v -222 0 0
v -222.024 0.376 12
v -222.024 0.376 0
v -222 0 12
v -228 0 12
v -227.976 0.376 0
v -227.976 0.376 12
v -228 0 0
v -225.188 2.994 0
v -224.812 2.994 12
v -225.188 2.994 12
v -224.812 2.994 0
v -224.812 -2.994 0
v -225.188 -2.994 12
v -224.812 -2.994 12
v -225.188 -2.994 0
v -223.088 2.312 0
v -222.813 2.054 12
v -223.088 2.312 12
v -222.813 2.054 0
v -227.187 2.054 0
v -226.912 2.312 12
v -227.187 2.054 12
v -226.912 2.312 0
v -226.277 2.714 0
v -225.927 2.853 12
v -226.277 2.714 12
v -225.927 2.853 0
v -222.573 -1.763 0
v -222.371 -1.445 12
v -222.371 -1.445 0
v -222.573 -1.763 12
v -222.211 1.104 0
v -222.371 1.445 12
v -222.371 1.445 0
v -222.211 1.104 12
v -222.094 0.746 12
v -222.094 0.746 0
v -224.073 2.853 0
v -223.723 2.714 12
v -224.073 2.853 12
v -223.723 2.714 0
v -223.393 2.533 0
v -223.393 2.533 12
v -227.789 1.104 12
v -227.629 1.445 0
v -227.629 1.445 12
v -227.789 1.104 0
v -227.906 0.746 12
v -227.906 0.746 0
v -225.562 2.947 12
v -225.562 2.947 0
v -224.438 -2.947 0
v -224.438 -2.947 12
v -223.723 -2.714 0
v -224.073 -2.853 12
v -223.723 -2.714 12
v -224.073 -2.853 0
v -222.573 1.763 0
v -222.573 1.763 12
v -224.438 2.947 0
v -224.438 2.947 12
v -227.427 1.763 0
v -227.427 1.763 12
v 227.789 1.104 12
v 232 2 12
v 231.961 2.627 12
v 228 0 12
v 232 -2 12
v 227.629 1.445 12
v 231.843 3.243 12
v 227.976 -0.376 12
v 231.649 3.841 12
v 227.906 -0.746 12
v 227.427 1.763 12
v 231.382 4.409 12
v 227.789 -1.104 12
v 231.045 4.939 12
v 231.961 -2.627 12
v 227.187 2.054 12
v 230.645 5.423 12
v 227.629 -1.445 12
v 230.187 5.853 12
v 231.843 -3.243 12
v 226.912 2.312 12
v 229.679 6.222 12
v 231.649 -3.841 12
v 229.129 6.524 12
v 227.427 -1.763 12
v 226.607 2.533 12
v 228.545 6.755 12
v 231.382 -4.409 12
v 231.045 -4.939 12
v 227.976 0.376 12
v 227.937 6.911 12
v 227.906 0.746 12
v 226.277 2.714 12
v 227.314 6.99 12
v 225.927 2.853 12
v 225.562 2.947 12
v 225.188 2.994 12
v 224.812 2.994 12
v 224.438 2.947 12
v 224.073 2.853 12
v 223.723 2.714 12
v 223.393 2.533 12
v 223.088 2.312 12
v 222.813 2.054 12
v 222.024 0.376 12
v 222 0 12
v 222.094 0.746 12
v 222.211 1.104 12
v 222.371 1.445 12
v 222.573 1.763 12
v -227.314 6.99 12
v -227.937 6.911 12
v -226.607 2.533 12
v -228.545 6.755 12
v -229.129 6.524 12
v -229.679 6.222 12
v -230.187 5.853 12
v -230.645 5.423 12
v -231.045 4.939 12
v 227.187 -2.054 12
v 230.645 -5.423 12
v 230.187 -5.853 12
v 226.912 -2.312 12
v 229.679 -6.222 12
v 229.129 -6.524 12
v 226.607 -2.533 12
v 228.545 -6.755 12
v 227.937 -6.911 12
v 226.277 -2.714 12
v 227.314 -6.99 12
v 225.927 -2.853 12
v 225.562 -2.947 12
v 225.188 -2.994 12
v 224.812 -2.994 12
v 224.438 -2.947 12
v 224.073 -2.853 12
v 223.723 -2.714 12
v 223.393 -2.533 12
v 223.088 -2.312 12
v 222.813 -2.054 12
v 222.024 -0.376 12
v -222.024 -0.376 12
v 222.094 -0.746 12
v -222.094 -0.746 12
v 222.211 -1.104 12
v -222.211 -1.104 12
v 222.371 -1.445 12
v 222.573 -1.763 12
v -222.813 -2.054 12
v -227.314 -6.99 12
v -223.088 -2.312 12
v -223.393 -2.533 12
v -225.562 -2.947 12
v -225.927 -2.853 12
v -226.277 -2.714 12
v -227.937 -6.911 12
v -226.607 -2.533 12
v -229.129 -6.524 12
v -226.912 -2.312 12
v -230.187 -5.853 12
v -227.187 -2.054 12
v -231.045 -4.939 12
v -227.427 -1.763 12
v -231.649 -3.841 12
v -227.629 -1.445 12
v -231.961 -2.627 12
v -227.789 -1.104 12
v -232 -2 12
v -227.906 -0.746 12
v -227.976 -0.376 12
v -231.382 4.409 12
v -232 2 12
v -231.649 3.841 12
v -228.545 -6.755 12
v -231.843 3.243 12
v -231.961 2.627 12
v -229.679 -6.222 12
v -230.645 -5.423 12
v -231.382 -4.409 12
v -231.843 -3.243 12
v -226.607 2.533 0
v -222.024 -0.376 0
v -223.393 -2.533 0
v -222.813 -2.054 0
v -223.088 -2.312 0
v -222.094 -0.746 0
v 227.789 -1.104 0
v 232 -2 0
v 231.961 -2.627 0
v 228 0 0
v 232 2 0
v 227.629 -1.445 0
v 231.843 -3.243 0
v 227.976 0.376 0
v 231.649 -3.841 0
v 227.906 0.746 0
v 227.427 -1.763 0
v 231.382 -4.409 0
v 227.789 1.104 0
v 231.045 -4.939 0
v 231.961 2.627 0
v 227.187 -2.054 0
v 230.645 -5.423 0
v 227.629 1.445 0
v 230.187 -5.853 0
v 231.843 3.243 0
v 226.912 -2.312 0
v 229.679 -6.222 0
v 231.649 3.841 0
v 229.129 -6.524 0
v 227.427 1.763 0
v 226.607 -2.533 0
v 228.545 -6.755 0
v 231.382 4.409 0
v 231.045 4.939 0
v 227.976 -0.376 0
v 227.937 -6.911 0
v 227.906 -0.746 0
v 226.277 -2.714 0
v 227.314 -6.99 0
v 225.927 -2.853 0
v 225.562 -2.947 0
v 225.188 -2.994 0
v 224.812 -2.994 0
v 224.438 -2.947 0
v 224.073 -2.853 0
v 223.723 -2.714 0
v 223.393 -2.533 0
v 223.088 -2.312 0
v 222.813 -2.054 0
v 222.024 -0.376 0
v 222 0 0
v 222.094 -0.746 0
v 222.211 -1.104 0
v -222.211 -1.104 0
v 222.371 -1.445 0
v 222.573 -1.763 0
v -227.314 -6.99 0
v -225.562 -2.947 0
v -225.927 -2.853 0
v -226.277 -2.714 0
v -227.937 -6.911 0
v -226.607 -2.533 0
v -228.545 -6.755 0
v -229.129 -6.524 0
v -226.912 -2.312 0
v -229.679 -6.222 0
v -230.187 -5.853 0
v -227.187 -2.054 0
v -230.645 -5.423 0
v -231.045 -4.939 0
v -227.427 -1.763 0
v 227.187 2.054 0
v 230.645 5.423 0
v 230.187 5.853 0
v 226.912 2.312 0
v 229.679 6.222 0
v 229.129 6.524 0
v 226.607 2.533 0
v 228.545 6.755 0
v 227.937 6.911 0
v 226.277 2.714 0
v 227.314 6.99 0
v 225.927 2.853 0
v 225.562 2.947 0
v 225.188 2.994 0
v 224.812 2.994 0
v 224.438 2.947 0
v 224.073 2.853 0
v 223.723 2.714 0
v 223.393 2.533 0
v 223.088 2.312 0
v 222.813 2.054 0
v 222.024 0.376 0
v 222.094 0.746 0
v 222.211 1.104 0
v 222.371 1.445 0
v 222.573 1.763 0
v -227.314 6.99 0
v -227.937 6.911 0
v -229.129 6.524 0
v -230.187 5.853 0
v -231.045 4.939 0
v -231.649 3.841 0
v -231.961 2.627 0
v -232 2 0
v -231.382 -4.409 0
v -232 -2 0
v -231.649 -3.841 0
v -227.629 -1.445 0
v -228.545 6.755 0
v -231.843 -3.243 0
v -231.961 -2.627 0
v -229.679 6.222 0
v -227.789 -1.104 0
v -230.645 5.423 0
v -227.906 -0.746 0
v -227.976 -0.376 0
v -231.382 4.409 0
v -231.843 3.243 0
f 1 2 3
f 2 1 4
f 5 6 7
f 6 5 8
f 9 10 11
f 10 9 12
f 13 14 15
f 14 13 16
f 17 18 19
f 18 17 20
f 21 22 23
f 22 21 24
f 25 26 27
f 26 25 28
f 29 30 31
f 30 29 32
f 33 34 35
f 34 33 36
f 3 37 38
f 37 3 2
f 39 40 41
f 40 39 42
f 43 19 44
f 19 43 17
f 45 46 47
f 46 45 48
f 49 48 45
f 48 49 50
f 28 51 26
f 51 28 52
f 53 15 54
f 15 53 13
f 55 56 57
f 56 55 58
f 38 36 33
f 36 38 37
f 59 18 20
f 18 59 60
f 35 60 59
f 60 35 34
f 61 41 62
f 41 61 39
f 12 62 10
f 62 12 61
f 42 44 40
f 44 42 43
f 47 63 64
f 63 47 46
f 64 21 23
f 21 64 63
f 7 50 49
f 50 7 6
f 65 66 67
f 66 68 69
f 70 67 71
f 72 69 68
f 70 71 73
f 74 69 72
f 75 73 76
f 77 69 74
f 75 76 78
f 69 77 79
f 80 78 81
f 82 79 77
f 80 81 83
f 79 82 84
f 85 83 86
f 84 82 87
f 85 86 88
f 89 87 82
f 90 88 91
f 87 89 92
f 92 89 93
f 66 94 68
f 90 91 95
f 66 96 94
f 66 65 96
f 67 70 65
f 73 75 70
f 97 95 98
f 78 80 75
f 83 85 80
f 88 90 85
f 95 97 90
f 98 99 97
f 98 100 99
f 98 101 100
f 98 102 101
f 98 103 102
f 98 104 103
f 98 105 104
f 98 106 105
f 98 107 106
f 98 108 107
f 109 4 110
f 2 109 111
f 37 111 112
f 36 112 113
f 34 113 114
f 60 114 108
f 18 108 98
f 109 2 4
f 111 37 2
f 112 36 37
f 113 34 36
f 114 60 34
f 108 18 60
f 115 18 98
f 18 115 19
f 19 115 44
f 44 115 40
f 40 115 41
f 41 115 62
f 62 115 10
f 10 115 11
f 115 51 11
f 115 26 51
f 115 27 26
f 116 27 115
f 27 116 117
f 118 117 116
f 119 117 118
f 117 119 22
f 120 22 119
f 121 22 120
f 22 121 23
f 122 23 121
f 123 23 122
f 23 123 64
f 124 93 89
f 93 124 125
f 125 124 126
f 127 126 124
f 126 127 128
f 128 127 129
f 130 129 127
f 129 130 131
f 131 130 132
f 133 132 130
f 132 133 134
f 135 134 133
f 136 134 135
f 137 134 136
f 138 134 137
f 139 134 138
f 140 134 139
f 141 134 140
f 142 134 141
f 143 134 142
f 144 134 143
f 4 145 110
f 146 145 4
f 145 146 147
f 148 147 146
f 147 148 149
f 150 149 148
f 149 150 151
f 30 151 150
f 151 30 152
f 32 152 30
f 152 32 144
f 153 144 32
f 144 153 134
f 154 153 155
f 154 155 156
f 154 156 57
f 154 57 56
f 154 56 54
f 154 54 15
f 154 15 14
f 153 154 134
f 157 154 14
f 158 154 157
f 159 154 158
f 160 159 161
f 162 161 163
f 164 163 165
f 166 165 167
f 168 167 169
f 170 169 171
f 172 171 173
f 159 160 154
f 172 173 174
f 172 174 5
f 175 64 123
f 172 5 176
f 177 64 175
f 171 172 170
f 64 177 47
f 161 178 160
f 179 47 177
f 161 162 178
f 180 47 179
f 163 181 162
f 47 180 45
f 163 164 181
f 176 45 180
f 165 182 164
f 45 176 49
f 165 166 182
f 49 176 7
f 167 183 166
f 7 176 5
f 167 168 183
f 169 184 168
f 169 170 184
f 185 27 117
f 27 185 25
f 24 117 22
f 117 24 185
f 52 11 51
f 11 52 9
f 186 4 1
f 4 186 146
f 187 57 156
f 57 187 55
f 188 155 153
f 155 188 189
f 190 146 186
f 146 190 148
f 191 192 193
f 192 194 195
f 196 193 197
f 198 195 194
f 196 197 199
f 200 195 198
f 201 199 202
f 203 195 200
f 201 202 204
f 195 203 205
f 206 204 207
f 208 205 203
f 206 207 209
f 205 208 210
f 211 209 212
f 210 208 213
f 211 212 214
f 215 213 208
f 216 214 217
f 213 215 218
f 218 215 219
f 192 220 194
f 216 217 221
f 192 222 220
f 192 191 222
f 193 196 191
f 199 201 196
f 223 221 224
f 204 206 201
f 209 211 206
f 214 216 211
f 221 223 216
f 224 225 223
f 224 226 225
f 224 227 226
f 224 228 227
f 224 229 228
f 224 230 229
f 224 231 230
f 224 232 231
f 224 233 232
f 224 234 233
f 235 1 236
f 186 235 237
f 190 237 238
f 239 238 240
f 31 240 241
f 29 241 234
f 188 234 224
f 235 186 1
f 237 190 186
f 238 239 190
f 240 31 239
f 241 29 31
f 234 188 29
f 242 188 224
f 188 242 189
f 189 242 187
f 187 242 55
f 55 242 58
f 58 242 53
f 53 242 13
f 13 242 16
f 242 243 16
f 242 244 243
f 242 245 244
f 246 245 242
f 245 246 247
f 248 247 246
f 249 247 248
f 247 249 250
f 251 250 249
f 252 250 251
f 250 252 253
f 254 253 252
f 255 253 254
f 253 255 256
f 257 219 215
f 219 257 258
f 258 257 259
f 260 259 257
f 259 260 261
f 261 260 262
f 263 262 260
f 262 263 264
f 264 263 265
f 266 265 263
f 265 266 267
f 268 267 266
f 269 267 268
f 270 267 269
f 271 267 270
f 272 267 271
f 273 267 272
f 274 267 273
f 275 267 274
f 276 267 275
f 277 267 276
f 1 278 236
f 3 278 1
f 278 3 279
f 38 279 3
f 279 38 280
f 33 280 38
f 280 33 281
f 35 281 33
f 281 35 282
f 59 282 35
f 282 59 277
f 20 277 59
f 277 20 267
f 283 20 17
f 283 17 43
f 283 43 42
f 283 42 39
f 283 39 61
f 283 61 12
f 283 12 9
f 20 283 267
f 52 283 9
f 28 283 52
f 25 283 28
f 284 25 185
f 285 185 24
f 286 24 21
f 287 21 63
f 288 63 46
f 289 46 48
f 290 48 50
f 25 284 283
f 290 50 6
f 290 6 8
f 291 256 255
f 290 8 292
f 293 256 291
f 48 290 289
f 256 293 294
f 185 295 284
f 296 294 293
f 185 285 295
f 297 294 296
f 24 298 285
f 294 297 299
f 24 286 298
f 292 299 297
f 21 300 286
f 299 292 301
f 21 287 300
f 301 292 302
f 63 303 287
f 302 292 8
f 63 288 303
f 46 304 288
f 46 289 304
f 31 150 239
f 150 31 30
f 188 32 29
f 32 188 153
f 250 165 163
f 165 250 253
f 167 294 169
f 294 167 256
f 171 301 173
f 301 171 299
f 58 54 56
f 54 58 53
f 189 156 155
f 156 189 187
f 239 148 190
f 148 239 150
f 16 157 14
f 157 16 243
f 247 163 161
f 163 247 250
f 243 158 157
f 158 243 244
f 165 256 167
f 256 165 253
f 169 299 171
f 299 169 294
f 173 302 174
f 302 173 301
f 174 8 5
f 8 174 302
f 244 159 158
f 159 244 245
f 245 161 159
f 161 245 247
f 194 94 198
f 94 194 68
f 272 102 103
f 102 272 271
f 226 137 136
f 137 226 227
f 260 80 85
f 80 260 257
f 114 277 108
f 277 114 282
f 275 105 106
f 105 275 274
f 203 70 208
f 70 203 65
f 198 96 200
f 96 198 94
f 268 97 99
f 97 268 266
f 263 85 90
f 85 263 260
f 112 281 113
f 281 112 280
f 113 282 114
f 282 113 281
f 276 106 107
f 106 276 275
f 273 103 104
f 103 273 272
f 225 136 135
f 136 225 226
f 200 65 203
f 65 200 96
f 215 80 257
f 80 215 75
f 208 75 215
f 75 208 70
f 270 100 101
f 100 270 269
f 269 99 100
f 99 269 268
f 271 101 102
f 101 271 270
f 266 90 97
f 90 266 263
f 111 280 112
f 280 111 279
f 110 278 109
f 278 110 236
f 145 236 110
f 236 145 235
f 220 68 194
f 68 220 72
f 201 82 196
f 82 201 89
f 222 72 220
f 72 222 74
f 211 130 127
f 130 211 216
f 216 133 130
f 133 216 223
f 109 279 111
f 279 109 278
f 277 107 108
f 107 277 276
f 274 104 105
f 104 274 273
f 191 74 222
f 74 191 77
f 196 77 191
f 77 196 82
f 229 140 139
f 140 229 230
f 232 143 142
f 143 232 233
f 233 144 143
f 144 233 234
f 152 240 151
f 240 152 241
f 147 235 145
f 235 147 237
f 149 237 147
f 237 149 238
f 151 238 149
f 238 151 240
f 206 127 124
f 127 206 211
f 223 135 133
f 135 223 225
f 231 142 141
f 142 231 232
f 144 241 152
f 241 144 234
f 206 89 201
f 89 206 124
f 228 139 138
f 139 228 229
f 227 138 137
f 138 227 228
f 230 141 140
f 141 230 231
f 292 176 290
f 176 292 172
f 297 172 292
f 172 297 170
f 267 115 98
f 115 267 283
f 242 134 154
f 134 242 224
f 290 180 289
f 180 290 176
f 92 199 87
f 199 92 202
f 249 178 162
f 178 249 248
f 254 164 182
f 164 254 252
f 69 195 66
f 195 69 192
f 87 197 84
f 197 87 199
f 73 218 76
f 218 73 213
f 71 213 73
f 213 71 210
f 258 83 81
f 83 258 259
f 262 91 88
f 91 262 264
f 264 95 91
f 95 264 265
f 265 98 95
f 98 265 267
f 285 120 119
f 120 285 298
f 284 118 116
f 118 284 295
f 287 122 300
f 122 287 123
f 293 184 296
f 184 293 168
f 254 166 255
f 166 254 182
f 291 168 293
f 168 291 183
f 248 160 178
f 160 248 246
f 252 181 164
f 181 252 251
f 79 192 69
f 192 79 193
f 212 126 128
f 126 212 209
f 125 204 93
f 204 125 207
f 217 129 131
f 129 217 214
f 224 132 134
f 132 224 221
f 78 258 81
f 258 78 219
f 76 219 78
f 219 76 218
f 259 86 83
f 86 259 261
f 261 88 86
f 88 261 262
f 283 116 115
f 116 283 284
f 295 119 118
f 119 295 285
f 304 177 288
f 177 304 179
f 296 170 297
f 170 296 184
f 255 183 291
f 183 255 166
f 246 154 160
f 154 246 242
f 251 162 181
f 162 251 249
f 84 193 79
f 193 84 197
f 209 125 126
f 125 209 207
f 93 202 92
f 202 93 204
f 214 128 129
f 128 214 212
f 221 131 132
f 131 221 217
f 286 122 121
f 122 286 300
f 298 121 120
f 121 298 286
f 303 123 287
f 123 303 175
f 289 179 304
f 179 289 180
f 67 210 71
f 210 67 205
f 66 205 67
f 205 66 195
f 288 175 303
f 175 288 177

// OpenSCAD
$fn = 50;


difference() {
	union() {
		hull() {
			translate(v = [-227.0000000000, 2.0000000000, 0]) {
				cylinder(h = 12, r = 5);
			}
			translate(v = [227.0000000000, 2.0000000000, 0]) {
				cylinder(h = 12, r = 5);
			}
			translate(v = [-227.0000000000, -2.0000000000, 0]) {
				cylinder(h = 12, r = 5);
			}
			translate(v = [227.0000000000, -2.0000000000, 0]) {
				cylinder(h = 12, r = 5);
			}
		}
	}
	union() {
		translate(v = [-225.0000000000, 0.0000000000, 0]) {
			cylinder(h = 12, r = 3.0000000000);
		}
		translate(v = [225.0000000000, 0.0000000000, 0]) {
			cylinder(h = 12, r = 3.0000000000);
		}
		translate(v = [-225.0000000000, 0.0000000000, 0]) {
			cylinder(h = 12, r = 1.5000000000);
		}
		translate(v = [225.0000000000, 0.0000000000, 0]) {
			cylinder(h = 12, r = 1.5000000000);
		}
		translate(v = [-225.0000000000, 0.0000000000, 0]) {
			cylinder(h = 12, r = 1.5000000000);
		}
		translate(v = [225.0000000000, 0.0000000000, 0]) {
			cylinder(h = 12, r = 1.5000000000);
		}
		translate(v = [-225.0000000000, 0.0000000000, 0]) {
			cylinder(h = 12, r = 1.5000000000);
		}
		translate(v = [225.0000000000, 0.0000000000, 0]) {
			cylinder(h = 12, r = 1.5000000000);
		}
	}
}
